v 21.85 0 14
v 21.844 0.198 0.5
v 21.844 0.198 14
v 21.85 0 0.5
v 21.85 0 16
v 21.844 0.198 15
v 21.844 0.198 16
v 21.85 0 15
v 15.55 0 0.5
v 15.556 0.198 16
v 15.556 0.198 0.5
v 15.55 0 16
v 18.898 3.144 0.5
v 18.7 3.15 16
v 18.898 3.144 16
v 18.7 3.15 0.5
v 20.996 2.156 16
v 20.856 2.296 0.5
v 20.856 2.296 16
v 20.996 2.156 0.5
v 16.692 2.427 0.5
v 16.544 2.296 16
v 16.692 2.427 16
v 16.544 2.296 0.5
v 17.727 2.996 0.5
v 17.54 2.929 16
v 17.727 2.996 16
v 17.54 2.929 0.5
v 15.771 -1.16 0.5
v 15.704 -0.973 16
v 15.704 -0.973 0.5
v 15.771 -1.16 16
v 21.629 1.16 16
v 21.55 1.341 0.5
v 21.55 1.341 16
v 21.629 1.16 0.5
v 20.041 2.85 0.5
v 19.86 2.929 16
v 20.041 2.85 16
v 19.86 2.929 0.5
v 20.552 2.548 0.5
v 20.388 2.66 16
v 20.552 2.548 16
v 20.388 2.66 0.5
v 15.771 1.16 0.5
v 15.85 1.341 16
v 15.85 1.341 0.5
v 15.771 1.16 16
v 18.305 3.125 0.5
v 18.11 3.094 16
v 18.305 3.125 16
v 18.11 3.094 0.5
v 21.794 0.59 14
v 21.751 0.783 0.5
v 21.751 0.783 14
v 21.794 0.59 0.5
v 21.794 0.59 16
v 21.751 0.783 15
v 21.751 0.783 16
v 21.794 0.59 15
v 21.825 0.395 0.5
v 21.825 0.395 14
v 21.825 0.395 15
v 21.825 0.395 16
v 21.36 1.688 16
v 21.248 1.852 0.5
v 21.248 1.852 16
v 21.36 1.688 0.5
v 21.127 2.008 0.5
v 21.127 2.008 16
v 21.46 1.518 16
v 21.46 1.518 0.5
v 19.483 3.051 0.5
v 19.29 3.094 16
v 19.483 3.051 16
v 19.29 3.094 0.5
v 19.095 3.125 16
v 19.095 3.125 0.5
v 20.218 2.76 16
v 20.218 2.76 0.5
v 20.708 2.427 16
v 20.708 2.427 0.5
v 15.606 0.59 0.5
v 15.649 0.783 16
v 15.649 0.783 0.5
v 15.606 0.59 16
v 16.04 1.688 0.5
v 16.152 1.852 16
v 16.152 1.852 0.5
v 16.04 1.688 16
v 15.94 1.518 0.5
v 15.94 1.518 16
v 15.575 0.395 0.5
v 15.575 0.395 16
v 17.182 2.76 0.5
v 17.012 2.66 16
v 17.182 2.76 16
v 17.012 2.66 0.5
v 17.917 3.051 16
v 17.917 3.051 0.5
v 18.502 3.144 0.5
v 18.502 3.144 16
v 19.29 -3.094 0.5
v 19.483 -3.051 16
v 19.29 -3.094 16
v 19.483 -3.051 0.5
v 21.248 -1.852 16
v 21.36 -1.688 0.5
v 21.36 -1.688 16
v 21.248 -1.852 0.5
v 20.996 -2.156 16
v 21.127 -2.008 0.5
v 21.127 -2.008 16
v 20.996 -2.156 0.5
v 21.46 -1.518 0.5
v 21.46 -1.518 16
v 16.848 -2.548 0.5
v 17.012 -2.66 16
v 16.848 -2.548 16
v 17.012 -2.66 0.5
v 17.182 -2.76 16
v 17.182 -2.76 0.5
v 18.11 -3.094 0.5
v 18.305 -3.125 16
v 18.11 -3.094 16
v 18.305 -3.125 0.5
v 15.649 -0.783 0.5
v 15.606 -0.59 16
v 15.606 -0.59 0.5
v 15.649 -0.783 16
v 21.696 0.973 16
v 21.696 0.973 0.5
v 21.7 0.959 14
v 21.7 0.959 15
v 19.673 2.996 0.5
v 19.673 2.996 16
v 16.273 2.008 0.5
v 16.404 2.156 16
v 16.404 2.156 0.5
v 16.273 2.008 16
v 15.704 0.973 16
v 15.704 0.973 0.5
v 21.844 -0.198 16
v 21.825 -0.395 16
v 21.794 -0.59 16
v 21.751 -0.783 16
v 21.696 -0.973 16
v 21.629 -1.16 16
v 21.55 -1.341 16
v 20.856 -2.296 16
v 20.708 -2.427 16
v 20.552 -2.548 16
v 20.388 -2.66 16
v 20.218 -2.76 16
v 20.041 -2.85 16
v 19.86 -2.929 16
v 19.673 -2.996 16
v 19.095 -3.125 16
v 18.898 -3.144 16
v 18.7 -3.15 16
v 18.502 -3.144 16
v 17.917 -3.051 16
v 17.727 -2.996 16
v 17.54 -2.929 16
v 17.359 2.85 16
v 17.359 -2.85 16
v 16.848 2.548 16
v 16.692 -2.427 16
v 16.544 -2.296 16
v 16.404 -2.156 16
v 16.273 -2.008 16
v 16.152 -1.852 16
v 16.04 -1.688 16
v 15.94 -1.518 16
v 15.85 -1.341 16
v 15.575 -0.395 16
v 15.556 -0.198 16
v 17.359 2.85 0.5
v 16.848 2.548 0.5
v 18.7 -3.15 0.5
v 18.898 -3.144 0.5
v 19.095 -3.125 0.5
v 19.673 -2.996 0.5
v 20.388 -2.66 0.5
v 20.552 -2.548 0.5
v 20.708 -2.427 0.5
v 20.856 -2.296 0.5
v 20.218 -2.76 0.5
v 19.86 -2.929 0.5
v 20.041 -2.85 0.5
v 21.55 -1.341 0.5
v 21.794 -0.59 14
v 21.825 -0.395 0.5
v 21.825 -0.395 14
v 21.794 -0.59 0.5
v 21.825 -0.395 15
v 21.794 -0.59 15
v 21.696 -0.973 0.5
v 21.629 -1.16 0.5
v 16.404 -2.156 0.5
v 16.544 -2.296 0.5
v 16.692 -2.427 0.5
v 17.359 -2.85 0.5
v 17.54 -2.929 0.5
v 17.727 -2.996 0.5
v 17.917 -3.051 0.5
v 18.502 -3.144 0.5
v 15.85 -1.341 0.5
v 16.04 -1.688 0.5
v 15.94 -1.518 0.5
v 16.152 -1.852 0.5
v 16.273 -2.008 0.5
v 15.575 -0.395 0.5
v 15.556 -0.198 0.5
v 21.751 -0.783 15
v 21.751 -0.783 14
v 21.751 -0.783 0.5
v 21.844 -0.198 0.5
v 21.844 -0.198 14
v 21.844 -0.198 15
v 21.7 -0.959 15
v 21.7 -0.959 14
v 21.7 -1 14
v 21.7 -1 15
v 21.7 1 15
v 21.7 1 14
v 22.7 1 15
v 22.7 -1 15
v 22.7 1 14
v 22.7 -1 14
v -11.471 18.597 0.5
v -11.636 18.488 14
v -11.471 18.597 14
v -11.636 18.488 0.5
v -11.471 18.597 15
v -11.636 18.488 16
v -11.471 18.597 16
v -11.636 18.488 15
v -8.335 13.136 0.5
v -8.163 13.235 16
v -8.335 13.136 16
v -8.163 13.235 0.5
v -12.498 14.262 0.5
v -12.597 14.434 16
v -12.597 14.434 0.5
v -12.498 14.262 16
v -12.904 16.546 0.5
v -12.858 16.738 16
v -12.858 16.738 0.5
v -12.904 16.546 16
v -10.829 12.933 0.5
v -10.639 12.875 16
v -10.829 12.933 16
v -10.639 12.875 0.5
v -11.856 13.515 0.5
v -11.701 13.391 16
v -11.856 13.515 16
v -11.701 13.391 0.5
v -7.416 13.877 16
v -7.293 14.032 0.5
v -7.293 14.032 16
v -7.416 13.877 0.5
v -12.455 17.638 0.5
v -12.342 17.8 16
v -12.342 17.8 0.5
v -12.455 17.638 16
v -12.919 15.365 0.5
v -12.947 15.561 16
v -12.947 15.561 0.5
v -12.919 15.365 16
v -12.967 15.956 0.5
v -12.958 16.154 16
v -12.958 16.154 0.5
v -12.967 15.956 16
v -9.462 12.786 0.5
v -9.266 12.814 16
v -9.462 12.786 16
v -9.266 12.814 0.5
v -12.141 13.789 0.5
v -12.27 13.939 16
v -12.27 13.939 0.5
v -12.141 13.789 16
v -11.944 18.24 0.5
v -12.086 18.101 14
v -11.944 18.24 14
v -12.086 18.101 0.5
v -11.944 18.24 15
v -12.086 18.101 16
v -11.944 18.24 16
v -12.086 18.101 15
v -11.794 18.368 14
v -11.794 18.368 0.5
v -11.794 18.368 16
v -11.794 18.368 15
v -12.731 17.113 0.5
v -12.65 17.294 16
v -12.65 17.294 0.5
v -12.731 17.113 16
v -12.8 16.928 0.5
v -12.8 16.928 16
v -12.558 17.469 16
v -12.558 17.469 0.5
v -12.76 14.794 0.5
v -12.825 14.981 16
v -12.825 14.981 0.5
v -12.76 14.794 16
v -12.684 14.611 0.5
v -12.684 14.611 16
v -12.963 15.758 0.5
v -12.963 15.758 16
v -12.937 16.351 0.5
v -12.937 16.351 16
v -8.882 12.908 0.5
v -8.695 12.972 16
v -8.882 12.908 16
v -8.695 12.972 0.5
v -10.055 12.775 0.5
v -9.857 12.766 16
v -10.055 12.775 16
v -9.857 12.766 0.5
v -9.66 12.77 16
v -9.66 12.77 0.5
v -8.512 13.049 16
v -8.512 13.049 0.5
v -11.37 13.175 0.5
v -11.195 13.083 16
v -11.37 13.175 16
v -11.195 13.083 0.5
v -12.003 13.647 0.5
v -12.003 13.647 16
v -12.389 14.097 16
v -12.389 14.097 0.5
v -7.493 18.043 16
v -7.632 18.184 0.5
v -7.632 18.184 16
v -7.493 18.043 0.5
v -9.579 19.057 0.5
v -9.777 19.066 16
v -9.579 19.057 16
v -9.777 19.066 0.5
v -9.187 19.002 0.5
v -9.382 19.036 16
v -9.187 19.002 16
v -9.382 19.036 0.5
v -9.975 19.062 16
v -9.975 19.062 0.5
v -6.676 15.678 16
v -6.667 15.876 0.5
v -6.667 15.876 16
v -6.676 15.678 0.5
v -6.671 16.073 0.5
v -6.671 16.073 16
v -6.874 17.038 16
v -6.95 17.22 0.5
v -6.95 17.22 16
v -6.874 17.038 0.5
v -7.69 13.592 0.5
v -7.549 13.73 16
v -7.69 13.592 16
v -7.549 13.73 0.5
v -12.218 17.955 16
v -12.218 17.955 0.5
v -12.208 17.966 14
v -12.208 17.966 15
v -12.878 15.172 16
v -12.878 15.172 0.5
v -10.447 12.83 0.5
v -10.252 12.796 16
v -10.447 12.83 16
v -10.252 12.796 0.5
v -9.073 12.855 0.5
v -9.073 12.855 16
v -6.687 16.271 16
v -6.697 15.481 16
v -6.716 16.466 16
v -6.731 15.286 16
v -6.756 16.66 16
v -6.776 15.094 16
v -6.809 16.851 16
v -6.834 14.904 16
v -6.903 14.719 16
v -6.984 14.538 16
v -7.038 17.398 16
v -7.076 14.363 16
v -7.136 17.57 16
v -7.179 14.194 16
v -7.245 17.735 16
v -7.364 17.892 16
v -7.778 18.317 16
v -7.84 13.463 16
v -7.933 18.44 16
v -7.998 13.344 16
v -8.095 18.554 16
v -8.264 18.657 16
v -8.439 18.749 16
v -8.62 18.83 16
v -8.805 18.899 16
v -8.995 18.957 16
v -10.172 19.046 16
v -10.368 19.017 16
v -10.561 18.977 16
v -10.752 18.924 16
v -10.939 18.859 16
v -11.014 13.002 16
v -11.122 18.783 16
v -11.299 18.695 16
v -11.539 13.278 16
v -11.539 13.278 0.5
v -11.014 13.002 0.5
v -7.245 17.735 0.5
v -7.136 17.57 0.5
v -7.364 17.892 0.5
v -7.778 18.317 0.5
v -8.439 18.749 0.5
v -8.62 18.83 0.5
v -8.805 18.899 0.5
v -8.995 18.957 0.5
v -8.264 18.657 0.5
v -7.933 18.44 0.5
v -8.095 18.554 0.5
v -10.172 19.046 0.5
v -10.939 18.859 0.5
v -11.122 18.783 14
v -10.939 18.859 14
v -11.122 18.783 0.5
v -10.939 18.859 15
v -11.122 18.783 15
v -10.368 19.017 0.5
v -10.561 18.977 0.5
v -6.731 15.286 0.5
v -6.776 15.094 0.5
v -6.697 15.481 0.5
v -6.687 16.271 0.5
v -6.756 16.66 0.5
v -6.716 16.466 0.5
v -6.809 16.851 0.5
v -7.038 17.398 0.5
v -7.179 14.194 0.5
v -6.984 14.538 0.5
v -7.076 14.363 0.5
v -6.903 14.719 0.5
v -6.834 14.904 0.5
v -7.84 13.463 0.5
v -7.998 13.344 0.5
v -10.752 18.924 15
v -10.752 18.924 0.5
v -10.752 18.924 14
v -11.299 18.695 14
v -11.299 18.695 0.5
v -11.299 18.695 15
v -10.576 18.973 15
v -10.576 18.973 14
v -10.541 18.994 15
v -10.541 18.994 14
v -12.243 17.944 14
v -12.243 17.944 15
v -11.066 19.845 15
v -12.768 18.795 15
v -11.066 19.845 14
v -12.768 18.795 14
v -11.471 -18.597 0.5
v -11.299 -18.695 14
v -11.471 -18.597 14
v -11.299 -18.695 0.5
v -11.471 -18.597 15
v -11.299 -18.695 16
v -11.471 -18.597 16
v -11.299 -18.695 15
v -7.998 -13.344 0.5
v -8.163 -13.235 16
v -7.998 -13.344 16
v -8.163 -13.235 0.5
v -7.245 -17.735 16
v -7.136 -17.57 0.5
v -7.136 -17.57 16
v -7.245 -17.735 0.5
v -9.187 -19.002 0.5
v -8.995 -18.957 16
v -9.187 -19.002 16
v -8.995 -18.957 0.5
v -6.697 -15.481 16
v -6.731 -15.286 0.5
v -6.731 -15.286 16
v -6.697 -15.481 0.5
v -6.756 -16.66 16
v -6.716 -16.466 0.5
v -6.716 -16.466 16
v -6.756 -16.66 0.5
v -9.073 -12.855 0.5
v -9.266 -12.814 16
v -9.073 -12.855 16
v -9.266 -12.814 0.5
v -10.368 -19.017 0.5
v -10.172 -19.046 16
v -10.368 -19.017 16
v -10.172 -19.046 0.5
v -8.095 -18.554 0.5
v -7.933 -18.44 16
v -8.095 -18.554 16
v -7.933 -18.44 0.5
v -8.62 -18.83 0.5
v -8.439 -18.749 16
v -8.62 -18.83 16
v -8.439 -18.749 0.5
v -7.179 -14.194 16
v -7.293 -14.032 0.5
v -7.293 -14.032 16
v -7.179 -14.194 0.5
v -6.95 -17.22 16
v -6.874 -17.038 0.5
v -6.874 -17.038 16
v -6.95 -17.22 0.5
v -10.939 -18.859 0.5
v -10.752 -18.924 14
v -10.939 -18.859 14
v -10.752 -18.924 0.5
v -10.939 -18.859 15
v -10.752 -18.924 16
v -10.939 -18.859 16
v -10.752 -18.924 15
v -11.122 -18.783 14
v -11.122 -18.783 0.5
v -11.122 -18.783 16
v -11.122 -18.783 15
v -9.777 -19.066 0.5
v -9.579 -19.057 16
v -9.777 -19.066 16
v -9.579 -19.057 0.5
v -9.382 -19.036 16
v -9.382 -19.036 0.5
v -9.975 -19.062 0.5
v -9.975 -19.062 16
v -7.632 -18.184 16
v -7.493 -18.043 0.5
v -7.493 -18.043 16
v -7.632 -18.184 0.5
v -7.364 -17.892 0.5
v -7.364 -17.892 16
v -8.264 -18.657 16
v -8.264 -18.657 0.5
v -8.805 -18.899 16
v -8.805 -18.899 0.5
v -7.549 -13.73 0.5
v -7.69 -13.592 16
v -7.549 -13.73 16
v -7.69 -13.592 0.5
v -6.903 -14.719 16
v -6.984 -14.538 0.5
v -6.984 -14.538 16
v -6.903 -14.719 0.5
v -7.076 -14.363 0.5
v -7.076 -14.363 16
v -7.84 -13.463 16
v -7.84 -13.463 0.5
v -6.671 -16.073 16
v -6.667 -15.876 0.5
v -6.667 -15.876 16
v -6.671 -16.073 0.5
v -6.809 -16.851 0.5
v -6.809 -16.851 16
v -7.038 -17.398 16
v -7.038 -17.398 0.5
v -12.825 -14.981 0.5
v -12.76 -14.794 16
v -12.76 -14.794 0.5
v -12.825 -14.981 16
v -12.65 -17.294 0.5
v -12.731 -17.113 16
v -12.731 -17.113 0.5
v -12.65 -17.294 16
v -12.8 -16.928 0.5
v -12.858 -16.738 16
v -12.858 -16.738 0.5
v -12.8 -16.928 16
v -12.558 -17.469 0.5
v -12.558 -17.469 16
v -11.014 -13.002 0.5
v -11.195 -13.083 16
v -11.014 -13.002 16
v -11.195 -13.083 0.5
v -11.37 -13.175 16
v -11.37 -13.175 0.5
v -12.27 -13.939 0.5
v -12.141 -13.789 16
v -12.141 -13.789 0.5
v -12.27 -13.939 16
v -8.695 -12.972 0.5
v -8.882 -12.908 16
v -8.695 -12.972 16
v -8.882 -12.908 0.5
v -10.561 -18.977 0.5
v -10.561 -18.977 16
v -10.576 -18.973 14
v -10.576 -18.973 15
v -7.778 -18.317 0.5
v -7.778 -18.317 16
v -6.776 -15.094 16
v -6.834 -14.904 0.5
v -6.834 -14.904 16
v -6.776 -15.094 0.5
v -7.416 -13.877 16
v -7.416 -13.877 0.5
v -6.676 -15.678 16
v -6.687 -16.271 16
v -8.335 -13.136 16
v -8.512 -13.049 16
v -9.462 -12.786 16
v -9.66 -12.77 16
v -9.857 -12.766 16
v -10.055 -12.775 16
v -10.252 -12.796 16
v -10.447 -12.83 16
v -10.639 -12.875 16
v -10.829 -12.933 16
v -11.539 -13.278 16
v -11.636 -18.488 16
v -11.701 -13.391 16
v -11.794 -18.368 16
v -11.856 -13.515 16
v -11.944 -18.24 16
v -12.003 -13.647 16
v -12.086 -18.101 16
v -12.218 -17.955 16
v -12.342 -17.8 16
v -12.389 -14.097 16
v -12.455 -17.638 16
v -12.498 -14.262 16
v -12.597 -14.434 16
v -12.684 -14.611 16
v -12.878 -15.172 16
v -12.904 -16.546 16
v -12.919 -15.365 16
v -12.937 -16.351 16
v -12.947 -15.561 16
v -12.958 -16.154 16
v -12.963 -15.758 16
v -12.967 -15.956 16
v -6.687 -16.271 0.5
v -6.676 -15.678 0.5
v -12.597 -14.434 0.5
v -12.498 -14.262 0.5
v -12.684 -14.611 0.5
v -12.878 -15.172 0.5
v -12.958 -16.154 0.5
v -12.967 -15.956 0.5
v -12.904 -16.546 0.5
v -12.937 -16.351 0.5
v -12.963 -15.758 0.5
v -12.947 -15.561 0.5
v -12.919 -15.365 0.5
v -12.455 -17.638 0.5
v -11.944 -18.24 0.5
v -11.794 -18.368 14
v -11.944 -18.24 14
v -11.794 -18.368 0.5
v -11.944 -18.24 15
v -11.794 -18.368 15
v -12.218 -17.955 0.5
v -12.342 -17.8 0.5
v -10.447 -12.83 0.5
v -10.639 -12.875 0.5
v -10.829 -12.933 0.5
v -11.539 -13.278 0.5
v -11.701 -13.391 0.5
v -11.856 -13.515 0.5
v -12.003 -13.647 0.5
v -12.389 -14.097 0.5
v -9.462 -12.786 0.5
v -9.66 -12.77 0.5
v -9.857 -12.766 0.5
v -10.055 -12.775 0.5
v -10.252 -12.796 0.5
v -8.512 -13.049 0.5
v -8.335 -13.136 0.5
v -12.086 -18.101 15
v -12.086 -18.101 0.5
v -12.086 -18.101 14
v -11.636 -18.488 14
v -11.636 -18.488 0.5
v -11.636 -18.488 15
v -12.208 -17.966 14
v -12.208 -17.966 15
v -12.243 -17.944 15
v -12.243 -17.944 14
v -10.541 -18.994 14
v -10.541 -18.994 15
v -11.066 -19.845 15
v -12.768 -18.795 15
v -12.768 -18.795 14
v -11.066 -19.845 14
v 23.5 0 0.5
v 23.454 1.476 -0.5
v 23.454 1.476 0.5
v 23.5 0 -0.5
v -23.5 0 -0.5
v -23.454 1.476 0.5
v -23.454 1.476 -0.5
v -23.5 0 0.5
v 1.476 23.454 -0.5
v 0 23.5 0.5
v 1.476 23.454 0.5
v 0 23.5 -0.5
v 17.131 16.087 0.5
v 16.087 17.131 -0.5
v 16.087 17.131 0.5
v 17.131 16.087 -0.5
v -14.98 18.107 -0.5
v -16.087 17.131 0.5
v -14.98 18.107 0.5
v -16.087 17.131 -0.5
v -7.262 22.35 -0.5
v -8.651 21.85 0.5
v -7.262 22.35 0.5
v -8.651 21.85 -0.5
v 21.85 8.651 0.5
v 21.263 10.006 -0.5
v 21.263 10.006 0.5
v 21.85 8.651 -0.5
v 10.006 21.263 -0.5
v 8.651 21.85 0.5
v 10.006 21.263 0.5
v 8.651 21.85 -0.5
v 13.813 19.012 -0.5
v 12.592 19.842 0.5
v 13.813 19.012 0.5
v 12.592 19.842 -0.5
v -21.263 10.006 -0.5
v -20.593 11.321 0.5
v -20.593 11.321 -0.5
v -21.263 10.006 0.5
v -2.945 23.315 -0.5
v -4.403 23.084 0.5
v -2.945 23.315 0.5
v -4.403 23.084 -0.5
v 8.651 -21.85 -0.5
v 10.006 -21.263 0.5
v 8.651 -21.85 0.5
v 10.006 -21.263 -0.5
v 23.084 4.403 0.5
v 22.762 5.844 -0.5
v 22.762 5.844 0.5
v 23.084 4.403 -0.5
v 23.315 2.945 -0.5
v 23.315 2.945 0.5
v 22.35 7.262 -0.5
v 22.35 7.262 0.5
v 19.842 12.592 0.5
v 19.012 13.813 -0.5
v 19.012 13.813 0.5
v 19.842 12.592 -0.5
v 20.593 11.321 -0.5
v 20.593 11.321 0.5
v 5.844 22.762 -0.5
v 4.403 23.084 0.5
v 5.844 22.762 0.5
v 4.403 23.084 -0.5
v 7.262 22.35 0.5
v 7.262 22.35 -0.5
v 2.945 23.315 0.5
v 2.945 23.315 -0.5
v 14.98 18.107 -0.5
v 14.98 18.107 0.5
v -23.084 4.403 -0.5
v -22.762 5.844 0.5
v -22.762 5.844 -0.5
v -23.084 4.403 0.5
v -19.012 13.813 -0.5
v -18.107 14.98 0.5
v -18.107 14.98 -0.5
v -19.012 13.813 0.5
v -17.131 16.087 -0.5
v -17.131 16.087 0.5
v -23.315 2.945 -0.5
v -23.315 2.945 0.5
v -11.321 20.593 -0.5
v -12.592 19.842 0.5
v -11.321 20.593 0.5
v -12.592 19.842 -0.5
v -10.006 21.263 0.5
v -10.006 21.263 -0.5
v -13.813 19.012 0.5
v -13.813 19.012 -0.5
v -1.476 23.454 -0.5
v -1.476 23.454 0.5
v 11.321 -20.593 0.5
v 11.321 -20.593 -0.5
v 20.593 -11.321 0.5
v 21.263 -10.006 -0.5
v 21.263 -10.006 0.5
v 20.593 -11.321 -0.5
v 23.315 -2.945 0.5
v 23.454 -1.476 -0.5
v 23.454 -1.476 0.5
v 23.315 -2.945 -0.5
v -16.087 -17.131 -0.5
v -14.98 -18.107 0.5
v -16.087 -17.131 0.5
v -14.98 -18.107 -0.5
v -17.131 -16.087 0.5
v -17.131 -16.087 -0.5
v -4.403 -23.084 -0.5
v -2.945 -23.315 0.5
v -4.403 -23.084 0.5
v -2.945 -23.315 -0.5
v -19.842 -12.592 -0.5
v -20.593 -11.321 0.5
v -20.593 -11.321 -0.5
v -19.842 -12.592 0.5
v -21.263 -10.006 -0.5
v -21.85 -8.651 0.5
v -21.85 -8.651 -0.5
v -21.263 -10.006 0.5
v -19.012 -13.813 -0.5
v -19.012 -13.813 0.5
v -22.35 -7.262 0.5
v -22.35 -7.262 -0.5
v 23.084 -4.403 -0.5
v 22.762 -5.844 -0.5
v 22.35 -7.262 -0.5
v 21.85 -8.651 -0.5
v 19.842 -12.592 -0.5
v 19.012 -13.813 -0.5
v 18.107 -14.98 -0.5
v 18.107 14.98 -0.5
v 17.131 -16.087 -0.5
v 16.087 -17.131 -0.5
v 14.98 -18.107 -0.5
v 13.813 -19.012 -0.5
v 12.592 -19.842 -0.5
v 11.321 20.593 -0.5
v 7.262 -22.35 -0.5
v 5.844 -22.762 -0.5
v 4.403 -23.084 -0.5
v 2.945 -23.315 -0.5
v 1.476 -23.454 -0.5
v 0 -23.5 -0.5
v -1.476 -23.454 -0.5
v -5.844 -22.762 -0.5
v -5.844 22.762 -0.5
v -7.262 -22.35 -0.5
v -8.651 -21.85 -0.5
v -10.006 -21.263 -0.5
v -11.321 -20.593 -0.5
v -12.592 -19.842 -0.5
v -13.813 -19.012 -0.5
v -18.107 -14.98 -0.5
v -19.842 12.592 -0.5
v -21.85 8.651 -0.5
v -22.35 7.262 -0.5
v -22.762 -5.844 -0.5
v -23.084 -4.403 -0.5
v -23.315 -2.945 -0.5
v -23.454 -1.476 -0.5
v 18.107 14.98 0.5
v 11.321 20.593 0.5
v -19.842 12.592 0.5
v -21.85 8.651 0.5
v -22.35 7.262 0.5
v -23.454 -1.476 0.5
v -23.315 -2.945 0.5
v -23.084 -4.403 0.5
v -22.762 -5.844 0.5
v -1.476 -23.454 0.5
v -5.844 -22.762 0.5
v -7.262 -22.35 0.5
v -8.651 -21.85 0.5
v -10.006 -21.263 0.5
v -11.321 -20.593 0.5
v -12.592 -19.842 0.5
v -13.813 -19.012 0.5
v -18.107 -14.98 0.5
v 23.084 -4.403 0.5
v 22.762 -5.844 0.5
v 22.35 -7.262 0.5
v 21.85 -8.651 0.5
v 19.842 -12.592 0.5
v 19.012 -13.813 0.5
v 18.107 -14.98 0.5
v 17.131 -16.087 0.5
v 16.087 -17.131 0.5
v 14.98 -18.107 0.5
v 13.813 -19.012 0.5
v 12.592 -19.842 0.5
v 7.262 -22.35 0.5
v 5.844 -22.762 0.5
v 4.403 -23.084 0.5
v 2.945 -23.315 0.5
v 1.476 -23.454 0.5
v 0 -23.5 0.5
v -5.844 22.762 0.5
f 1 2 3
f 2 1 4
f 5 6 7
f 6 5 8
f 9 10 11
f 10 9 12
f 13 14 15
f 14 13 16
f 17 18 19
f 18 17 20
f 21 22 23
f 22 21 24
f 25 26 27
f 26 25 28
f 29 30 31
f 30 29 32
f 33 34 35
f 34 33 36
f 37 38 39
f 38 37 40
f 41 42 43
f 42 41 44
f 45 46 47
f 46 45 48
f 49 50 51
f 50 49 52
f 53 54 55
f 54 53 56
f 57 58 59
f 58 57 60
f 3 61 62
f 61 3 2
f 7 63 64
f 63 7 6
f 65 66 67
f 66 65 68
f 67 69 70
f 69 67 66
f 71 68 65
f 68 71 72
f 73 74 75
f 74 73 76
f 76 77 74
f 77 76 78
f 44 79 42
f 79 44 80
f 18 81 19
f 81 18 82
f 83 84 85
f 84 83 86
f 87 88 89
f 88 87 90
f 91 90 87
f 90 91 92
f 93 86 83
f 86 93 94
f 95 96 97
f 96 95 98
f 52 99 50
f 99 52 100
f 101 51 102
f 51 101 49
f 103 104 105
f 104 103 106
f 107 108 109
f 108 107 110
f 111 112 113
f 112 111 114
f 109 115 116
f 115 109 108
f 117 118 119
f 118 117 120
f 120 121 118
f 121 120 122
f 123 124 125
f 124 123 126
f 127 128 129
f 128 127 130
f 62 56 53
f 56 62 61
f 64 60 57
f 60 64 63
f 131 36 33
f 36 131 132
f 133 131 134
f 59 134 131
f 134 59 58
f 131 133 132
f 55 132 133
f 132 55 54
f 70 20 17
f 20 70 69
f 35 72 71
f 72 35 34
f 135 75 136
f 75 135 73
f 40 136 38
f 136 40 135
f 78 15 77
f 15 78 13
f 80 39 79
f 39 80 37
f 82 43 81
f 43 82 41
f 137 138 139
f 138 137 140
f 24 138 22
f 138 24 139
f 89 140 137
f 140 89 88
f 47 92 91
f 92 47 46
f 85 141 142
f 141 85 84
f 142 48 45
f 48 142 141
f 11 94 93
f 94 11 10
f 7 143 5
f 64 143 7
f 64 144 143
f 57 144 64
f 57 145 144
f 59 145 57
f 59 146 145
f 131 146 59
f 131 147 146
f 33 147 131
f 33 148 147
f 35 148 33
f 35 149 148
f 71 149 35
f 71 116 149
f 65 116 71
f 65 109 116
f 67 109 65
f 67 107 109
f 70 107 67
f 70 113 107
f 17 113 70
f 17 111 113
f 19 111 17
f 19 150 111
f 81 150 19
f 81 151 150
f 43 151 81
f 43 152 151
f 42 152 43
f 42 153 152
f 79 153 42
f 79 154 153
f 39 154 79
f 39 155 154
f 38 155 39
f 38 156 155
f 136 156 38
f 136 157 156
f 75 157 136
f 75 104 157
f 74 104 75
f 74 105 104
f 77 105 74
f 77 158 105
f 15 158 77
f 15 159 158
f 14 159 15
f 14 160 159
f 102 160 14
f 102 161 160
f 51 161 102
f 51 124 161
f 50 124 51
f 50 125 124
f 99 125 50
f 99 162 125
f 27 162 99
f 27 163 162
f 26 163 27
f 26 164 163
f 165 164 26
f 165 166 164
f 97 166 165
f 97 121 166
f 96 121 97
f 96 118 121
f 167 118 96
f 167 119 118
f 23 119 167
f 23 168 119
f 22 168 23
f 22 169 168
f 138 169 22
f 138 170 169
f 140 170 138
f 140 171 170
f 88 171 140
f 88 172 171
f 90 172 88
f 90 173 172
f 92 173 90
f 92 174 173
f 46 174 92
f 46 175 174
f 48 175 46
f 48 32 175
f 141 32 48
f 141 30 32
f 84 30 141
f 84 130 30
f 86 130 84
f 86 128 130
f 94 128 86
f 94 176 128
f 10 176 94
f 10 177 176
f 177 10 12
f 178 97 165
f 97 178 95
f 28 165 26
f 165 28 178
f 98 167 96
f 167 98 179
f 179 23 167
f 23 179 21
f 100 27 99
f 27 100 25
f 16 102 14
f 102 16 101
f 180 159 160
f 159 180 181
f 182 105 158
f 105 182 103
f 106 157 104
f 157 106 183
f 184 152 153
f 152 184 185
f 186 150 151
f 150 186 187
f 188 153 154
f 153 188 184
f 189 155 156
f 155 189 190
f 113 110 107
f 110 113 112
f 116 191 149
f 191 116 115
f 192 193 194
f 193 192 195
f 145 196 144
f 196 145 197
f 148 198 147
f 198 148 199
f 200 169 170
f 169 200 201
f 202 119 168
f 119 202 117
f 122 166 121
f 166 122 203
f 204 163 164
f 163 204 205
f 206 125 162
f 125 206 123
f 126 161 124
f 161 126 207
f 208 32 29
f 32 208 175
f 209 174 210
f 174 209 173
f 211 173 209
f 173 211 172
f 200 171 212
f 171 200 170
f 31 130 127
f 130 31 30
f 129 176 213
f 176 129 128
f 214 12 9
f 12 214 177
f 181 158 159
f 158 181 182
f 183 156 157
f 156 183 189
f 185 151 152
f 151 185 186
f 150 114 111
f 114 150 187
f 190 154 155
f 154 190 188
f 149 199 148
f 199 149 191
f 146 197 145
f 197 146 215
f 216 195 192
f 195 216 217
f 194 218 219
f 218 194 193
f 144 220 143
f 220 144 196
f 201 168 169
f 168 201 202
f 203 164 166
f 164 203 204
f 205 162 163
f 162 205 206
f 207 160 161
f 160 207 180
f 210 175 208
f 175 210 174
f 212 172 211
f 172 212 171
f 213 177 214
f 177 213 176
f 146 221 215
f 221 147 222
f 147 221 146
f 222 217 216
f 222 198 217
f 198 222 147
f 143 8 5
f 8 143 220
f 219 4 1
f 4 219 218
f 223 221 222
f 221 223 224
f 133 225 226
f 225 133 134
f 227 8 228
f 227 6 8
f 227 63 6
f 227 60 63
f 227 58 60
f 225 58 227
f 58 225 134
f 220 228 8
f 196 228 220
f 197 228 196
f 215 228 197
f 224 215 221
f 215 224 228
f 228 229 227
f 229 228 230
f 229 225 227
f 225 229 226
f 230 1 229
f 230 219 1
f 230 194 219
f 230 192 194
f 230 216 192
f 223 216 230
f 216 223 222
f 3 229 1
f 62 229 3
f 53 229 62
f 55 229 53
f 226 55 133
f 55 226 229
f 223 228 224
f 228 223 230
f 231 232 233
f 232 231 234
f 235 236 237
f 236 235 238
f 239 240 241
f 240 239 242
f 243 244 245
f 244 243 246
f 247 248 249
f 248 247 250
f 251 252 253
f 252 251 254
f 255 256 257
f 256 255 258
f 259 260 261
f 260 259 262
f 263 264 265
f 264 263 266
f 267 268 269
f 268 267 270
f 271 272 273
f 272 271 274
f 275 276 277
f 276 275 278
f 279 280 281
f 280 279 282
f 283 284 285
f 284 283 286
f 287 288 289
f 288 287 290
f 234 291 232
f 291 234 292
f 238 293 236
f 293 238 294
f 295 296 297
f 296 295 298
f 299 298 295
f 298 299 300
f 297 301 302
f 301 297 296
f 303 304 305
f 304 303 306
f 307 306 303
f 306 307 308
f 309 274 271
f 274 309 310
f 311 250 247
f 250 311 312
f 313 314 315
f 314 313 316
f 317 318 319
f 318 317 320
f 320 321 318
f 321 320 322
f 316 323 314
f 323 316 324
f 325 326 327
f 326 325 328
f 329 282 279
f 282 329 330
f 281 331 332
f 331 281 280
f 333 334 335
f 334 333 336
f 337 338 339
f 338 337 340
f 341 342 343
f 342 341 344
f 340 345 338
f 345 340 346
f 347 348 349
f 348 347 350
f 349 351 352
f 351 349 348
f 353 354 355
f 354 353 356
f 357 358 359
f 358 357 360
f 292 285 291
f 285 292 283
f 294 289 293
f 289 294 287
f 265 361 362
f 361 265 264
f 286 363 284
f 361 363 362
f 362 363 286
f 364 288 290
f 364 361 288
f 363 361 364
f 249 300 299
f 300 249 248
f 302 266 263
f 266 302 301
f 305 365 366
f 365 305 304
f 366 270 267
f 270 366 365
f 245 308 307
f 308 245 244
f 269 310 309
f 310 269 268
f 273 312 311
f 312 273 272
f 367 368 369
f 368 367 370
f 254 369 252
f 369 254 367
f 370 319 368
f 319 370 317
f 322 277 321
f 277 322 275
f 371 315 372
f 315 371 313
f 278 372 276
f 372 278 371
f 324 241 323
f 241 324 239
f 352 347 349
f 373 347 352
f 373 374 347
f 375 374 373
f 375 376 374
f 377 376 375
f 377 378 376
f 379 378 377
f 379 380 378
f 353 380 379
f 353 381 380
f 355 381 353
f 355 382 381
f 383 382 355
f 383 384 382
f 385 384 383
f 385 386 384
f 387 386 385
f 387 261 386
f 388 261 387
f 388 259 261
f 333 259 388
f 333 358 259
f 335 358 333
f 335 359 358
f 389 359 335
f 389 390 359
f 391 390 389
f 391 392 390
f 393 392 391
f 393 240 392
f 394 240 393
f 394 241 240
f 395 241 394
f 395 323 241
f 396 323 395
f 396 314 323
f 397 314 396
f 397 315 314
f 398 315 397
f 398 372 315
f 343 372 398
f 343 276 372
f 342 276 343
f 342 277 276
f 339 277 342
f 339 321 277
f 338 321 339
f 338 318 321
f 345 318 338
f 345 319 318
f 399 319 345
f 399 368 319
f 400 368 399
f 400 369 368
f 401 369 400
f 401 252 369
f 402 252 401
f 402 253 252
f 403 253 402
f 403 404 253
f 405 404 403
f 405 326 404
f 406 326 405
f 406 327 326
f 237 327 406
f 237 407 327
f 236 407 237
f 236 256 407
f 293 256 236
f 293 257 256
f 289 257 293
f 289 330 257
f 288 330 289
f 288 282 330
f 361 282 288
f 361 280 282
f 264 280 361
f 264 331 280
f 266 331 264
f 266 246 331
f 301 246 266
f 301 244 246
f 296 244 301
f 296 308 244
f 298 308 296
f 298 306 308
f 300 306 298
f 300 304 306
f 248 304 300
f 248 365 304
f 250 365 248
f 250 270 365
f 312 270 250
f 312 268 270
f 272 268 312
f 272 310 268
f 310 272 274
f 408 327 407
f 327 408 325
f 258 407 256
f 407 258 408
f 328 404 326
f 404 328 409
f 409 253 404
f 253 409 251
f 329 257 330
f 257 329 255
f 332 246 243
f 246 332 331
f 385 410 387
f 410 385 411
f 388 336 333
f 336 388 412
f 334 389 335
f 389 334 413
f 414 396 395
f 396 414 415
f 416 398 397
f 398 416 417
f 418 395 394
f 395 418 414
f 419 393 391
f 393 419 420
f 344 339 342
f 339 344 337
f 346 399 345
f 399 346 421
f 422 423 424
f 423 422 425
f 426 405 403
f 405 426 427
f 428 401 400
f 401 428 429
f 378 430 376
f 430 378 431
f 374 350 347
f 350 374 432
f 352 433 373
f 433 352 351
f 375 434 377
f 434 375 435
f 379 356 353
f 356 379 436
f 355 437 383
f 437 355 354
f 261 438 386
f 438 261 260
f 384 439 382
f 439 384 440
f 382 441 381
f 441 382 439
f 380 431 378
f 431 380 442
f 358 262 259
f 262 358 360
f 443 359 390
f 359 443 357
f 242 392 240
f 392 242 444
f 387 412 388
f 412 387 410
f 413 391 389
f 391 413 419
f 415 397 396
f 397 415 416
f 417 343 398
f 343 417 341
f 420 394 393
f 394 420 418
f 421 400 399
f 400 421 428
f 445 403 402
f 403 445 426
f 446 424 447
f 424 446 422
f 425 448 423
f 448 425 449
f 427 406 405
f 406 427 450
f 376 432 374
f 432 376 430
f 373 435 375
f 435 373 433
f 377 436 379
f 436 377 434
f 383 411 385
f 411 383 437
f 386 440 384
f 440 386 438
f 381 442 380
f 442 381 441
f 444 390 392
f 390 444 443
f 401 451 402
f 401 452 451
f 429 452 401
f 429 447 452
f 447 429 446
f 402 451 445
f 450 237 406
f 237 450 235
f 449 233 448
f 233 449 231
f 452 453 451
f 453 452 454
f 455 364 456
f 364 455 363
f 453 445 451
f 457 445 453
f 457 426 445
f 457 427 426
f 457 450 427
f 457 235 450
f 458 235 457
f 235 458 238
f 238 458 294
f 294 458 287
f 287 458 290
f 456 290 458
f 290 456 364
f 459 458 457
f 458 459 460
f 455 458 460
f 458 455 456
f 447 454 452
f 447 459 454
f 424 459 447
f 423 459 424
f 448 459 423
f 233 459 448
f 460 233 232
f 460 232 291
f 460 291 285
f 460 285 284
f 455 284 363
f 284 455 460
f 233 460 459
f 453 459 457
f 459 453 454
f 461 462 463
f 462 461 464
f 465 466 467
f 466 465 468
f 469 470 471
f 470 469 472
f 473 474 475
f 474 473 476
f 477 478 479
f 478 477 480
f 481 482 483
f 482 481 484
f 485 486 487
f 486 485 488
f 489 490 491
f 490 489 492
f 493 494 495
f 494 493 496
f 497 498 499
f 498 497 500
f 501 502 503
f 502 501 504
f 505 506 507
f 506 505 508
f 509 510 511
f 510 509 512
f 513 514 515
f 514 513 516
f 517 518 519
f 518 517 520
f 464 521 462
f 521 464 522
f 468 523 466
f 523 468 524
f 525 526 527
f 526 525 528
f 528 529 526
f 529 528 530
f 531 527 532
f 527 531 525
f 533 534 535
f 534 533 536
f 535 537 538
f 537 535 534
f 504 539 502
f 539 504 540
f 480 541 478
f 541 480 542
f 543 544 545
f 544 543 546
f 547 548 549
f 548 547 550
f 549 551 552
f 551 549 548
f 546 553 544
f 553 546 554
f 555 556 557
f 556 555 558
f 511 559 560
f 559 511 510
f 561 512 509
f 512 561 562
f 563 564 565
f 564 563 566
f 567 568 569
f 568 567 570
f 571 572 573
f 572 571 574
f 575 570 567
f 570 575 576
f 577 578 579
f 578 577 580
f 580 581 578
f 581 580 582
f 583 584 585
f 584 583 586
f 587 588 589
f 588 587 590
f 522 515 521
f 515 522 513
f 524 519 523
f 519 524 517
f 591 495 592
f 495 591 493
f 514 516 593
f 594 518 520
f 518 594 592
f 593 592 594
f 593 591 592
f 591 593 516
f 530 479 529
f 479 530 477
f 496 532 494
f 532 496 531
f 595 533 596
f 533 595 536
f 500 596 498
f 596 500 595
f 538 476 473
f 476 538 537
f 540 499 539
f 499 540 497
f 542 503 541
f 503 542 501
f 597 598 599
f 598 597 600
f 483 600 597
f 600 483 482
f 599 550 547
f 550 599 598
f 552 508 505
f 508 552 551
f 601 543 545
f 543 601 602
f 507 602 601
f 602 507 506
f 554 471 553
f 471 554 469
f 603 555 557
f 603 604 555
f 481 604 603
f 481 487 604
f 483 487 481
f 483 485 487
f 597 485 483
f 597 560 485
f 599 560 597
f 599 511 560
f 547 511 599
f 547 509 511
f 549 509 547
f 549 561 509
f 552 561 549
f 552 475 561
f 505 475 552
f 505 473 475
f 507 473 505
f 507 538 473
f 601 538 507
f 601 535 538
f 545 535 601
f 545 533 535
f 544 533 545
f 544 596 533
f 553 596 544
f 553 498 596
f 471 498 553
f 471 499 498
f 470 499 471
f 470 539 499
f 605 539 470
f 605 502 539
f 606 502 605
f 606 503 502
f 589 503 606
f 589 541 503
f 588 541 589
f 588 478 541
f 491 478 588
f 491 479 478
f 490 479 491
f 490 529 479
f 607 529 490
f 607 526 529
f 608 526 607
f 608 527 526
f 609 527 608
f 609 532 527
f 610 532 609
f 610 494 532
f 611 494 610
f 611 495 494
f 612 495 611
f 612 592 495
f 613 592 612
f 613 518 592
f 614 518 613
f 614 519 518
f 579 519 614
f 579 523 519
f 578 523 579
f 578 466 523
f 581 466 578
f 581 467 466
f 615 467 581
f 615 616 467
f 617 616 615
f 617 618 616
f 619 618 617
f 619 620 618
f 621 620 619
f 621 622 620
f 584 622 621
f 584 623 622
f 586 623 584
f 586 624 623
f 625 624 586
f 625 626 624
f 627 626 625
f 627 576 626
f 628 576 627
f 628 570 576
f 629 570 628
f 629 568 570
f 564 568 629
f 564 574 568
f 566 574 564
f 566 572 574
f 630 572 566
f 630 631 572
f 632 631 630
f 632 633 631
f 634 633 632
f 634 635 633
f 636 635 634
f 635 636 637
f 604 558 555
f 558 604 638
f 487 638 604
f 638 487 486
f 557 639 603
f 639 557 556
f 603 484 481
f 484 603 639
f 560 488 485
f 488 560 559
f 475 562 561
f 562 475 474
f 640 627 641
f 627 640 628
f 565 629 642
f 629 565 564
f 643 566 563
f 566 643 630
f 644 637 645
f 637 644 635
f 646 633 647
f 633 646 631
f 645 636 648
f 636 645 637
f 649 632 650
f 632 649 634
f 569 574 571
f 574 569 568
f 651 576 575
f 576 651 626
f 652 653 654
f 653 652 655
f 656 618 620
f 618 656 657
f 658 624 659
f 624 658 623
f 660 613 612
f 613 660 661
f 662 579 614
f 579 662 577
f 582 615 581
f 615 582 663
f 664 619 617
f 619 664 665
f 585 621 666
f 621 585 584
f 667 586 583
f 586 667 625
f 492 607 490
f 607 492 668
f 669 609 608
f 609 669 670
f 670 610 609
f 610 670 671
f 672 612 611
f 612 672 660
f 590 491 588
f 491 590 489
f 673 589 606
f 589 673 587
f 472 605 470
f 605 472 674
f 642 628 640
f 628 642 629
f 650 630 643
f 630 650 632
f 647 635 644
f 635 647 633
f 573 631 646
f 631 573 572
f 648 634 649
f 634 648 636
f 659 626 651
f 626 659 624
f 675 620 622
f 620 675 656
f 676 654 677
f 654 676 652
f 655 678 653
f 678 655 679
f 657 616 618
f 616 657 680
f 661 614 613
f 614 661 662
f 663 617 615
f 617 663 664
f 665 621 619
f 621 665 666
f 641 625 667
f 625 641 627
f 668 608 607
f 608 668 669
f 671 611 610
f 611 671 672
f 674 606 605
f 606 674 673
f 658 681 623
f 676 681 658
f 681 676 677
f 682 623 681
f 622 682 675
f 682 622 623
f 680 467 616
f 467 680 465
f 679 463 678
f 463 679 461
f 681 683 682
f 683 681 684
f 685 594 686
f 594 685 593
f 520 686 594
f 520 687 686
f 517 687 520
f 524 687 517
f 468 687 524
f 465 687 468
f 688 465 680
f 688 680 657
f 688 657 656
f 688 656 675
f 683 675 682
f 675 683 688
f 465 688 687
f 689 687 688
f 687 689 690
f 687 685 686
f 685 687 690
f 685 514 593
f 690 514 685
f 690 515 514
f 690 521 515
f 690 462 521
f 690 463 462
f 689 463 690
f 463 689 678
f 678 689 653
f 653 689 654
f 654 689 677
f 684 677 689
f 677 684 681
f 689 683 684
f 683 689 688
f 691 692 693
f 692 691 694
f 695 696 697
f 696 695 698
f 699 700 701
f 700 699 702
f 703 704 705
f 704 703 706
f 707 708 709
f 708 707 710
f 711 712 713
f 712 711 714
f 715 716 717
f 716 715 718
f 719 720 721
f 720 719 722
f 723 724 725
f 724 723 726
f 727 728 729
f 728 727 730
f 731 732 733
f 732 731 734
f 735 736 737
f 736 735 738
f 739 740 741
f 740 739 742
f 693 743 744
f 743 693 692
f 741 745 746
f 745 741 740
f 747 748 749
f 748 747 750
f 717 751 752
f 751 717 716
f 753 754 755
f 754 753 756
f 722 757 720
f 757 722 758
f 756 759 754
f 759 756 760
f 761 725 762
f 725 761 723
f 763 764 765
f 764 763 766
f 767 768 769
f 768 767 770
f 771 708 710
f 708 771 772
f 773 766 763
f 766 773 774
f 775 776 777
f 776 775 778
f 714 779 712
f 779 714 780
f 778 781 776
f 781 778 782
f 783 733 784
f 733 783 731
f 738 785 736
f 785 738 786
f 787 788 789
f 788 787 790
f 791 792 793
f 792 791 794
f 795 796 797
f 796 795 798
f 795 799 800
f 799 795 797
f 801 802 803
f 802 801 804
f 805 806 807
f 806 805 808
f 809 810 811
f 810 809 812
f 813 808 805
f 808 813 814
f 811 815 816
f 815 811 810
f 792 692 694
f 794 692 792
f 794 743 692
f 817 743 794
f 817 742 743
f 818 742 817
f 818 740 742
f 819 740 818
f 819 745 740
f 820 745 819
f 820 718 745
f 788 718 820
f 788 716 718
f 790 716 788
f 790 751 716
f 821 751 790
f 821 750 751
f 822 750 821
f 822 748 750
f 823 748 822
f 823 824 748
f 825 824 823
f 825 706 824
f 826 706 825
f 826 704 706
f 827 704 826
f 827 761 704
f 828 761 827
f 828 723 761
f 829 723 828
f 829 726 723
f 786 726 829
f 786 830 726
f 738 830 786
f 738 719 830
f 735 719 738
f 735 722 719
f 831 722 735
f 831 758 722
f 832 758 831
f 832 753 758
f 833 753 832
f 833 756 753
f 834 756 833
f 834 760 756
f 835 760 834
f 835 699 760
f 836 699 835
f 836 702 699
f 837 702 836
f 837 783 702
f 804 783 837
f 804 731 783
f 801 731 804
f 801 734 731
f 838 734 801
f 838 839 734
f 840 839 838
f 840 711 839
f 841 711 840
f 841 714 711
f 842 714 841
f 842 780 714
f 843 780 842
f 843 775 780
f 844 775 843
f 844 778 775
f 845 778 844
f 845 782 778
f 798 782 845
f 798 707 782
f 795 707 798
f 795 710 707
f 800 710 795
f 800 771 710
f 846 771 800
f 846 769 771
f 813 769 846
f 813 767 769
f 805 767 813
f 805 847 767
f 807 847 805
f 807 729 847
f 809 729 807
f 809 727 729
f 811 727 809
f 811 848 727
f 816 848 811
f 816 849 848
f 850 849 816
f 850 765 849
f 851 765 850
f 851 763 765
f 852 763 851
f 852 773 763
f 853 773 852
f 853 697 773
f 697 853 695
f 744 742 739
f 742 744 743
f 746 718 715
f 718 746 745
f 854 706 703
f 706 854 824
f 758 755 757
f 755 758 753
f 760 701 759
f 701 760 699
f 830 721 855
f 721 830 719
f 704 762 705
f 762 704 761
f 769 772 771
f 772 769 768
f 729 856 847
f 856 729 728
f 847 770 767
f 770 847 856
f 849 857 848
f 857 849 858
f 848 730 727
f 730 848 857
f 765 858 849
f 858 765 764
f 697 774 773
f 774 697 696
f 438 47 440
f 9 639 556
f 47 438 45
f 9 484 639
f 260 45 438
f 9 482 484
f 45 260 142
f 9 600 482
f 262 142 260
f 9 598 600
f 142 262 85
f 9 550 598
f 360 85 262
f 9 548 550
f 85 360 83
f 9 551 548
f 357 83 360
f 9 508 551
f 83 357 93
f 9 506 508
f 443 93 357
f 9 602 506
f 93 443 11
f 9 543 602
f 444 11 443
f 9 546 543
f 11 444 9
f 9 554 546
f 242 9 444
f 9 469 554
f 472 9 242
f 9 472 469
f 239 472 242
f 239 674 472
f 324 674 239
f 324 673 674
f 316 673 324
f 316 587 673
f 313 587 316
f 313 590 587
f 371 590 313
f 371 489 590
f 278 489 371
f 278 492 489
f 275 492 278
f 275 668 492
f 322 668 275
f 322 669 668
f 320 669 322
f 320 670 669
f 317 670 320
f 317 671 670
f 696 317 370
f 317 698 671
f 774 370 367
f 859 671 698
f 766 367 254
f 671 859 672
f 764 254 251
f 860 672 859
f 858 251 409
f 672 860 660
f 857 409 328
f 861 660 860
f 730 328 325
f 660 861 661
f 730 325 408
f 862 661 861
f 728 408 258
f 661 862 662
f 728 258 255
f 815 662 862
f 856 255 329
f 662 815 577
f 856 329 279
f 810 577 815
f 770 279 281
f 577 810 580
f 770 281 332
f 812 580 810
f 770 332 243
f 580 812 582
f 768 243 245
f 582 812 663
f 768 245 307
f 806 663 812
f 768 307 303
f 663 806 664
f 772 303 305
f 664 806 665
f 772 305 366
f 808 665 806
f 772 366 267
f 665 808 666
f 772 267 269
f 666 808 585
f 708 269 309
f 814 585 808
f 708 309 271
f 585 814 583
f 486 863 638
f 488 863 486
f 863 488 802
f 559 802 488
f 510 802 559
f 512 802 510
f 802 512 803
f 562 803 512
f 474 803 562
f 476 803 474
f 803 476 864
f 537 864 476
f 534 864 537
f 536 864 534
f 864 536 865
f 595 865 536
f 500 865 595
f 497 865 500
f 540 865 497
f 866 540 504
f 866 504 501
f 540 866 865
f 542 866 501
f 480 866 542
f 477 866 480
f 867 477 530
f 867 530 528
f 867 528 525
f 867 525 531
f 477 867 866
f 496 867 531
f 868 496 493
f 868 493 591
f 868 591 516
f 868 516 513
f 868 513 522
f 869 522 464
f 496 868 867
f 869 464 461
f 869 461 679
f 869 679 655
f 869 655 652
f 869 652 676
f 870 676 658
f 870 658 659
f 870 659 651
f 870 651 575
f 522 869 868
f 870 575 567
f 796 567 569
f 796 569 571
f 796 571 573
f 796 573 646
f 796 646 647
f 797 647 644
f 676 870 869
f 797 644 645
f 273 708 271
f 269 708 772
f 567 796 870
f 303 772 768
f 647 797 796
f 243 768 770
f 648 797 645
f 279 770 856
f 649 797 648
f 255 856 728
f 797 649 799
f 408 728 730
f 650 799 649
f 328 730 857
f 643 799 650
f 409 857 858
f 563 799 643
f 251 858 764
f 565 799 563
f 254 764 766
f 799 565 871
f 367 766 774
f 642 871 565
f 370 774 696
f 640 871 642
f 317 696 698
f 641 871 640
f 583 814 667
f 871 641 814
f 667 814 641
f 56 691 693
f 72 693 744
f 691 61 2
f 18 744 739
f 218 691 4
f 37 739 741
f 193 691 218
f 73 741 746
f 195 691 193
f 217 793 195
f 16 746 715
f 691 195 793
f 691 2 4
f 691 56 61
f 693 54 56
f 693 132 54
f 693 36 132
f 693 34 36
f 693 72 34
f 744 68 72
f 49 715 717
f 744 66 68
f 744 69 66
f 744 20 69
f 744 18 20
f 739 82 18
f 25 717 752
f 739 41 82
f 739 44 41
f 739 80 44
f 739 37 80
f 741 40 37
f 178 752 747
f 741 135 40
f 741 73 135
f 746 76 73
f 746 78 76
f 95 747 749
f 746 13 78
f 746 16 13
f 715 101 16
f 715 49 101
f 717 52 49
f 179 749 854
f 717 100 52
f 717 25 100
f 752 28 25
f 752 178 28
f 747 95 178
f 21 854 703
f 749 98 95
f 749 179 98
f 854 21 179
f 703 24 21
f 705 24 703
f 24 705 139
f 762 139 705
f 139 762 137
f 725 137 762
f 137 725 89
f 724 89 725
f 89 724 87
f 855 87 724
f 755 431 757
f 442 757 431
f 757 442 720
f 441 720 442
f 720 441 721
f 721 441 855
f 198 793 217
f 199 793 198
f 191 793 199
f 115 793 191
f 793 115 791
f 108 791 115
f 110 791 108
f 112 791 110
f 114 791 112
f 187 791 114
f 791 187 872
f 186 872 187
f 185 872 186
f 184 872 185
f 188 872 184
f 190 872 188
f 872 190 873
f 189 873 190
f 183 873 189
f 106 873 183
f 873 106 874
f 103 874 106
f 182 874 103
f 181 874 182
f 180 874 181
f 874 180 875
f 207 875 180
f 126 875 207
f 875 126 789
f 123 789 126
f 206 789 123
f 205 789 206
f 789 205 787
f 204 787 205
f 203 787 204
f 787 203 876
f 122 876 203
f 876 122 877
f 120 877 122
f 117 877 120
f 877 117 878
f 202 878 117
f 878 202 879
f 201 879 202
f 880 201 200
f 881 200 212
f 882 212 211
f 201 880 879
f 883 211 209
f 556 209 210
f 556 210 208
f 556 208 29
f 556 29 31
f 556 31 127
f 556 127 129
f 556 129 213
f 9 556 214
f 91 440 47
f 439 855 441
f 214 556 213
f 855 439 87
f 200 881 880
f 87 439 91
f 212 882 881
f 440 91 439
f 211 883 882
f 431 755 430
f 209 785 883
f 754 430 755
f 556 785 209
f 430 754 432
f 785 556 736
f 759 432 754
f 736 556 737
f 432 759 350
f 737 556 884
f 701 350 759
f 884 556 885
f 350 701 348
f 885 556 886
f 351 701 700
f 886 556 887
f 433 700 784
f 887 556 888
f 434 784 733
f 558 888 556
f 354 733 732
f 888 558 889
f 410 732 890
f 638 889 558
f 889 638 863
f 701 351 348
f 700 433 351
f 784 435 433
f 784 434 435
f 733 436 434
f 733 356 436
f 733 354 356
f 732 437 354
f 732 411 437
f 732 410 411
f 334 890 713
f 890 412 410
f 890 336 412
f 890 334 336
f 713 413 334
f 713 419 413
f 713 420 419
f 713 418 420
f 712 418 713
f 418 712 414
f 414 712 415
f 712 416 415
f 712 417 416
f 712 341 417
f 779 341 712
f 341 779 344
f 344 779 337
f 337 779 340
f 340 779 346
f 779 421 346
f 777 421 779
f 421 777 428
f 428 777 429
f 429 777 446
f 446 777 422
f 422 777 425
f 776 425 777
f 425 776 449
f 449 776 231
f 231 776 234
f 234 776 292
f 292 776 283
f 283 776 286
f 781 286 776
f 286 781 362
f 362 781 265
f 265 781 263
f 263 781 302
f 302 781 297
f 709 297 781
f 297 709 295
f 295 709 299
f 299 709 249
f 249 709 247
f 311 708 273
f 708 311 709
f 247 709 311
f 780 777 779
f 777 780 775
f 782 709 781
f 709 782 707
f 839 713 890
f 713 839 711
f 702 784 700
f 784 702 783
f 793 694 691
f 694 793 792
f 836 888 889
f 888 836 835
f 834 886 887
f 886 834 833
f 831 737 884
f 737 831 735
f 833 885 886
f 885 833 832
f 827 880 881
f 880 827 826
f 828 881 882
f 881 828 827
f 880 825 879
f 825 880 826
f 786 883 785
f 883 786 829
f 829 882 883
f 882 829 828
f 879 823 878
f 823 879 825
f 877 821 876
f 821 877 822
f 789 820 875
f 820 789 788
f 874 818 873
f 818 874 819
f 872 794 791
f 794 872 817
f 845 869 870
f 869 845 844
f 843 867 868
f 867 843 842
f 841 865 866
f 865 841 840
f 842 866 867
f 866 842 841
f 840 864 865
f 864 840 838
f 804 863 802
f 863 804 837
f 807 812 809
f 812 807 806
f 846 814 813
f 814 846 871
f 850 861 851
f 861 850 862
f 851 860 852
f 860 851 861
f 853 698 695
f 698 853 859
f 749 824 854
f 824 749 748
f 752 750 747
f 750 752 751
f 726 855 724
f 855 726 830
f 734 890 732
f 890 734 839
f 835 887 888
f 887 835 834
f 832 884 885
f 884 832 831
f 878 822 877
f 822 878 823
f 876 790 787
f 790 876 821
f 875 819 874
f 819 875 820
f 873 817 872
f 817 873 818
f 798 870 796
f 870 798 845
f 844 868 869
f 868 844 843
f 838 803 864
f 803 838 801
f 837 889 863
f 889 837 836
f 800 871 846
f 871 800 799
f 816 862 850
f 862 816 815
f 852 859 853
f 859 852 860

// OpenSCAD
$fn = 100;
//47x
// peg 6.39x16.95   spacing 25.76 or maybe 17 or 5 from the eage
//s = 25.76 - 6;
// main_d disk 47 
d = 47; 
pd = 6.3;
s = (d/2) - pd+1.5;
rotate = 365/3;
cylinder(h=1,d=d,center=true);
module post(){
  translate([s,0,0]) {
    cylinder(h=16,d=pd,center=false);
     translate([3,-1,14]) #cube([1,2,1], center=false);
    }
  }
post();  
rotate([0,0,rotate]) post();
rotate([0,0,-rotate]) post();
